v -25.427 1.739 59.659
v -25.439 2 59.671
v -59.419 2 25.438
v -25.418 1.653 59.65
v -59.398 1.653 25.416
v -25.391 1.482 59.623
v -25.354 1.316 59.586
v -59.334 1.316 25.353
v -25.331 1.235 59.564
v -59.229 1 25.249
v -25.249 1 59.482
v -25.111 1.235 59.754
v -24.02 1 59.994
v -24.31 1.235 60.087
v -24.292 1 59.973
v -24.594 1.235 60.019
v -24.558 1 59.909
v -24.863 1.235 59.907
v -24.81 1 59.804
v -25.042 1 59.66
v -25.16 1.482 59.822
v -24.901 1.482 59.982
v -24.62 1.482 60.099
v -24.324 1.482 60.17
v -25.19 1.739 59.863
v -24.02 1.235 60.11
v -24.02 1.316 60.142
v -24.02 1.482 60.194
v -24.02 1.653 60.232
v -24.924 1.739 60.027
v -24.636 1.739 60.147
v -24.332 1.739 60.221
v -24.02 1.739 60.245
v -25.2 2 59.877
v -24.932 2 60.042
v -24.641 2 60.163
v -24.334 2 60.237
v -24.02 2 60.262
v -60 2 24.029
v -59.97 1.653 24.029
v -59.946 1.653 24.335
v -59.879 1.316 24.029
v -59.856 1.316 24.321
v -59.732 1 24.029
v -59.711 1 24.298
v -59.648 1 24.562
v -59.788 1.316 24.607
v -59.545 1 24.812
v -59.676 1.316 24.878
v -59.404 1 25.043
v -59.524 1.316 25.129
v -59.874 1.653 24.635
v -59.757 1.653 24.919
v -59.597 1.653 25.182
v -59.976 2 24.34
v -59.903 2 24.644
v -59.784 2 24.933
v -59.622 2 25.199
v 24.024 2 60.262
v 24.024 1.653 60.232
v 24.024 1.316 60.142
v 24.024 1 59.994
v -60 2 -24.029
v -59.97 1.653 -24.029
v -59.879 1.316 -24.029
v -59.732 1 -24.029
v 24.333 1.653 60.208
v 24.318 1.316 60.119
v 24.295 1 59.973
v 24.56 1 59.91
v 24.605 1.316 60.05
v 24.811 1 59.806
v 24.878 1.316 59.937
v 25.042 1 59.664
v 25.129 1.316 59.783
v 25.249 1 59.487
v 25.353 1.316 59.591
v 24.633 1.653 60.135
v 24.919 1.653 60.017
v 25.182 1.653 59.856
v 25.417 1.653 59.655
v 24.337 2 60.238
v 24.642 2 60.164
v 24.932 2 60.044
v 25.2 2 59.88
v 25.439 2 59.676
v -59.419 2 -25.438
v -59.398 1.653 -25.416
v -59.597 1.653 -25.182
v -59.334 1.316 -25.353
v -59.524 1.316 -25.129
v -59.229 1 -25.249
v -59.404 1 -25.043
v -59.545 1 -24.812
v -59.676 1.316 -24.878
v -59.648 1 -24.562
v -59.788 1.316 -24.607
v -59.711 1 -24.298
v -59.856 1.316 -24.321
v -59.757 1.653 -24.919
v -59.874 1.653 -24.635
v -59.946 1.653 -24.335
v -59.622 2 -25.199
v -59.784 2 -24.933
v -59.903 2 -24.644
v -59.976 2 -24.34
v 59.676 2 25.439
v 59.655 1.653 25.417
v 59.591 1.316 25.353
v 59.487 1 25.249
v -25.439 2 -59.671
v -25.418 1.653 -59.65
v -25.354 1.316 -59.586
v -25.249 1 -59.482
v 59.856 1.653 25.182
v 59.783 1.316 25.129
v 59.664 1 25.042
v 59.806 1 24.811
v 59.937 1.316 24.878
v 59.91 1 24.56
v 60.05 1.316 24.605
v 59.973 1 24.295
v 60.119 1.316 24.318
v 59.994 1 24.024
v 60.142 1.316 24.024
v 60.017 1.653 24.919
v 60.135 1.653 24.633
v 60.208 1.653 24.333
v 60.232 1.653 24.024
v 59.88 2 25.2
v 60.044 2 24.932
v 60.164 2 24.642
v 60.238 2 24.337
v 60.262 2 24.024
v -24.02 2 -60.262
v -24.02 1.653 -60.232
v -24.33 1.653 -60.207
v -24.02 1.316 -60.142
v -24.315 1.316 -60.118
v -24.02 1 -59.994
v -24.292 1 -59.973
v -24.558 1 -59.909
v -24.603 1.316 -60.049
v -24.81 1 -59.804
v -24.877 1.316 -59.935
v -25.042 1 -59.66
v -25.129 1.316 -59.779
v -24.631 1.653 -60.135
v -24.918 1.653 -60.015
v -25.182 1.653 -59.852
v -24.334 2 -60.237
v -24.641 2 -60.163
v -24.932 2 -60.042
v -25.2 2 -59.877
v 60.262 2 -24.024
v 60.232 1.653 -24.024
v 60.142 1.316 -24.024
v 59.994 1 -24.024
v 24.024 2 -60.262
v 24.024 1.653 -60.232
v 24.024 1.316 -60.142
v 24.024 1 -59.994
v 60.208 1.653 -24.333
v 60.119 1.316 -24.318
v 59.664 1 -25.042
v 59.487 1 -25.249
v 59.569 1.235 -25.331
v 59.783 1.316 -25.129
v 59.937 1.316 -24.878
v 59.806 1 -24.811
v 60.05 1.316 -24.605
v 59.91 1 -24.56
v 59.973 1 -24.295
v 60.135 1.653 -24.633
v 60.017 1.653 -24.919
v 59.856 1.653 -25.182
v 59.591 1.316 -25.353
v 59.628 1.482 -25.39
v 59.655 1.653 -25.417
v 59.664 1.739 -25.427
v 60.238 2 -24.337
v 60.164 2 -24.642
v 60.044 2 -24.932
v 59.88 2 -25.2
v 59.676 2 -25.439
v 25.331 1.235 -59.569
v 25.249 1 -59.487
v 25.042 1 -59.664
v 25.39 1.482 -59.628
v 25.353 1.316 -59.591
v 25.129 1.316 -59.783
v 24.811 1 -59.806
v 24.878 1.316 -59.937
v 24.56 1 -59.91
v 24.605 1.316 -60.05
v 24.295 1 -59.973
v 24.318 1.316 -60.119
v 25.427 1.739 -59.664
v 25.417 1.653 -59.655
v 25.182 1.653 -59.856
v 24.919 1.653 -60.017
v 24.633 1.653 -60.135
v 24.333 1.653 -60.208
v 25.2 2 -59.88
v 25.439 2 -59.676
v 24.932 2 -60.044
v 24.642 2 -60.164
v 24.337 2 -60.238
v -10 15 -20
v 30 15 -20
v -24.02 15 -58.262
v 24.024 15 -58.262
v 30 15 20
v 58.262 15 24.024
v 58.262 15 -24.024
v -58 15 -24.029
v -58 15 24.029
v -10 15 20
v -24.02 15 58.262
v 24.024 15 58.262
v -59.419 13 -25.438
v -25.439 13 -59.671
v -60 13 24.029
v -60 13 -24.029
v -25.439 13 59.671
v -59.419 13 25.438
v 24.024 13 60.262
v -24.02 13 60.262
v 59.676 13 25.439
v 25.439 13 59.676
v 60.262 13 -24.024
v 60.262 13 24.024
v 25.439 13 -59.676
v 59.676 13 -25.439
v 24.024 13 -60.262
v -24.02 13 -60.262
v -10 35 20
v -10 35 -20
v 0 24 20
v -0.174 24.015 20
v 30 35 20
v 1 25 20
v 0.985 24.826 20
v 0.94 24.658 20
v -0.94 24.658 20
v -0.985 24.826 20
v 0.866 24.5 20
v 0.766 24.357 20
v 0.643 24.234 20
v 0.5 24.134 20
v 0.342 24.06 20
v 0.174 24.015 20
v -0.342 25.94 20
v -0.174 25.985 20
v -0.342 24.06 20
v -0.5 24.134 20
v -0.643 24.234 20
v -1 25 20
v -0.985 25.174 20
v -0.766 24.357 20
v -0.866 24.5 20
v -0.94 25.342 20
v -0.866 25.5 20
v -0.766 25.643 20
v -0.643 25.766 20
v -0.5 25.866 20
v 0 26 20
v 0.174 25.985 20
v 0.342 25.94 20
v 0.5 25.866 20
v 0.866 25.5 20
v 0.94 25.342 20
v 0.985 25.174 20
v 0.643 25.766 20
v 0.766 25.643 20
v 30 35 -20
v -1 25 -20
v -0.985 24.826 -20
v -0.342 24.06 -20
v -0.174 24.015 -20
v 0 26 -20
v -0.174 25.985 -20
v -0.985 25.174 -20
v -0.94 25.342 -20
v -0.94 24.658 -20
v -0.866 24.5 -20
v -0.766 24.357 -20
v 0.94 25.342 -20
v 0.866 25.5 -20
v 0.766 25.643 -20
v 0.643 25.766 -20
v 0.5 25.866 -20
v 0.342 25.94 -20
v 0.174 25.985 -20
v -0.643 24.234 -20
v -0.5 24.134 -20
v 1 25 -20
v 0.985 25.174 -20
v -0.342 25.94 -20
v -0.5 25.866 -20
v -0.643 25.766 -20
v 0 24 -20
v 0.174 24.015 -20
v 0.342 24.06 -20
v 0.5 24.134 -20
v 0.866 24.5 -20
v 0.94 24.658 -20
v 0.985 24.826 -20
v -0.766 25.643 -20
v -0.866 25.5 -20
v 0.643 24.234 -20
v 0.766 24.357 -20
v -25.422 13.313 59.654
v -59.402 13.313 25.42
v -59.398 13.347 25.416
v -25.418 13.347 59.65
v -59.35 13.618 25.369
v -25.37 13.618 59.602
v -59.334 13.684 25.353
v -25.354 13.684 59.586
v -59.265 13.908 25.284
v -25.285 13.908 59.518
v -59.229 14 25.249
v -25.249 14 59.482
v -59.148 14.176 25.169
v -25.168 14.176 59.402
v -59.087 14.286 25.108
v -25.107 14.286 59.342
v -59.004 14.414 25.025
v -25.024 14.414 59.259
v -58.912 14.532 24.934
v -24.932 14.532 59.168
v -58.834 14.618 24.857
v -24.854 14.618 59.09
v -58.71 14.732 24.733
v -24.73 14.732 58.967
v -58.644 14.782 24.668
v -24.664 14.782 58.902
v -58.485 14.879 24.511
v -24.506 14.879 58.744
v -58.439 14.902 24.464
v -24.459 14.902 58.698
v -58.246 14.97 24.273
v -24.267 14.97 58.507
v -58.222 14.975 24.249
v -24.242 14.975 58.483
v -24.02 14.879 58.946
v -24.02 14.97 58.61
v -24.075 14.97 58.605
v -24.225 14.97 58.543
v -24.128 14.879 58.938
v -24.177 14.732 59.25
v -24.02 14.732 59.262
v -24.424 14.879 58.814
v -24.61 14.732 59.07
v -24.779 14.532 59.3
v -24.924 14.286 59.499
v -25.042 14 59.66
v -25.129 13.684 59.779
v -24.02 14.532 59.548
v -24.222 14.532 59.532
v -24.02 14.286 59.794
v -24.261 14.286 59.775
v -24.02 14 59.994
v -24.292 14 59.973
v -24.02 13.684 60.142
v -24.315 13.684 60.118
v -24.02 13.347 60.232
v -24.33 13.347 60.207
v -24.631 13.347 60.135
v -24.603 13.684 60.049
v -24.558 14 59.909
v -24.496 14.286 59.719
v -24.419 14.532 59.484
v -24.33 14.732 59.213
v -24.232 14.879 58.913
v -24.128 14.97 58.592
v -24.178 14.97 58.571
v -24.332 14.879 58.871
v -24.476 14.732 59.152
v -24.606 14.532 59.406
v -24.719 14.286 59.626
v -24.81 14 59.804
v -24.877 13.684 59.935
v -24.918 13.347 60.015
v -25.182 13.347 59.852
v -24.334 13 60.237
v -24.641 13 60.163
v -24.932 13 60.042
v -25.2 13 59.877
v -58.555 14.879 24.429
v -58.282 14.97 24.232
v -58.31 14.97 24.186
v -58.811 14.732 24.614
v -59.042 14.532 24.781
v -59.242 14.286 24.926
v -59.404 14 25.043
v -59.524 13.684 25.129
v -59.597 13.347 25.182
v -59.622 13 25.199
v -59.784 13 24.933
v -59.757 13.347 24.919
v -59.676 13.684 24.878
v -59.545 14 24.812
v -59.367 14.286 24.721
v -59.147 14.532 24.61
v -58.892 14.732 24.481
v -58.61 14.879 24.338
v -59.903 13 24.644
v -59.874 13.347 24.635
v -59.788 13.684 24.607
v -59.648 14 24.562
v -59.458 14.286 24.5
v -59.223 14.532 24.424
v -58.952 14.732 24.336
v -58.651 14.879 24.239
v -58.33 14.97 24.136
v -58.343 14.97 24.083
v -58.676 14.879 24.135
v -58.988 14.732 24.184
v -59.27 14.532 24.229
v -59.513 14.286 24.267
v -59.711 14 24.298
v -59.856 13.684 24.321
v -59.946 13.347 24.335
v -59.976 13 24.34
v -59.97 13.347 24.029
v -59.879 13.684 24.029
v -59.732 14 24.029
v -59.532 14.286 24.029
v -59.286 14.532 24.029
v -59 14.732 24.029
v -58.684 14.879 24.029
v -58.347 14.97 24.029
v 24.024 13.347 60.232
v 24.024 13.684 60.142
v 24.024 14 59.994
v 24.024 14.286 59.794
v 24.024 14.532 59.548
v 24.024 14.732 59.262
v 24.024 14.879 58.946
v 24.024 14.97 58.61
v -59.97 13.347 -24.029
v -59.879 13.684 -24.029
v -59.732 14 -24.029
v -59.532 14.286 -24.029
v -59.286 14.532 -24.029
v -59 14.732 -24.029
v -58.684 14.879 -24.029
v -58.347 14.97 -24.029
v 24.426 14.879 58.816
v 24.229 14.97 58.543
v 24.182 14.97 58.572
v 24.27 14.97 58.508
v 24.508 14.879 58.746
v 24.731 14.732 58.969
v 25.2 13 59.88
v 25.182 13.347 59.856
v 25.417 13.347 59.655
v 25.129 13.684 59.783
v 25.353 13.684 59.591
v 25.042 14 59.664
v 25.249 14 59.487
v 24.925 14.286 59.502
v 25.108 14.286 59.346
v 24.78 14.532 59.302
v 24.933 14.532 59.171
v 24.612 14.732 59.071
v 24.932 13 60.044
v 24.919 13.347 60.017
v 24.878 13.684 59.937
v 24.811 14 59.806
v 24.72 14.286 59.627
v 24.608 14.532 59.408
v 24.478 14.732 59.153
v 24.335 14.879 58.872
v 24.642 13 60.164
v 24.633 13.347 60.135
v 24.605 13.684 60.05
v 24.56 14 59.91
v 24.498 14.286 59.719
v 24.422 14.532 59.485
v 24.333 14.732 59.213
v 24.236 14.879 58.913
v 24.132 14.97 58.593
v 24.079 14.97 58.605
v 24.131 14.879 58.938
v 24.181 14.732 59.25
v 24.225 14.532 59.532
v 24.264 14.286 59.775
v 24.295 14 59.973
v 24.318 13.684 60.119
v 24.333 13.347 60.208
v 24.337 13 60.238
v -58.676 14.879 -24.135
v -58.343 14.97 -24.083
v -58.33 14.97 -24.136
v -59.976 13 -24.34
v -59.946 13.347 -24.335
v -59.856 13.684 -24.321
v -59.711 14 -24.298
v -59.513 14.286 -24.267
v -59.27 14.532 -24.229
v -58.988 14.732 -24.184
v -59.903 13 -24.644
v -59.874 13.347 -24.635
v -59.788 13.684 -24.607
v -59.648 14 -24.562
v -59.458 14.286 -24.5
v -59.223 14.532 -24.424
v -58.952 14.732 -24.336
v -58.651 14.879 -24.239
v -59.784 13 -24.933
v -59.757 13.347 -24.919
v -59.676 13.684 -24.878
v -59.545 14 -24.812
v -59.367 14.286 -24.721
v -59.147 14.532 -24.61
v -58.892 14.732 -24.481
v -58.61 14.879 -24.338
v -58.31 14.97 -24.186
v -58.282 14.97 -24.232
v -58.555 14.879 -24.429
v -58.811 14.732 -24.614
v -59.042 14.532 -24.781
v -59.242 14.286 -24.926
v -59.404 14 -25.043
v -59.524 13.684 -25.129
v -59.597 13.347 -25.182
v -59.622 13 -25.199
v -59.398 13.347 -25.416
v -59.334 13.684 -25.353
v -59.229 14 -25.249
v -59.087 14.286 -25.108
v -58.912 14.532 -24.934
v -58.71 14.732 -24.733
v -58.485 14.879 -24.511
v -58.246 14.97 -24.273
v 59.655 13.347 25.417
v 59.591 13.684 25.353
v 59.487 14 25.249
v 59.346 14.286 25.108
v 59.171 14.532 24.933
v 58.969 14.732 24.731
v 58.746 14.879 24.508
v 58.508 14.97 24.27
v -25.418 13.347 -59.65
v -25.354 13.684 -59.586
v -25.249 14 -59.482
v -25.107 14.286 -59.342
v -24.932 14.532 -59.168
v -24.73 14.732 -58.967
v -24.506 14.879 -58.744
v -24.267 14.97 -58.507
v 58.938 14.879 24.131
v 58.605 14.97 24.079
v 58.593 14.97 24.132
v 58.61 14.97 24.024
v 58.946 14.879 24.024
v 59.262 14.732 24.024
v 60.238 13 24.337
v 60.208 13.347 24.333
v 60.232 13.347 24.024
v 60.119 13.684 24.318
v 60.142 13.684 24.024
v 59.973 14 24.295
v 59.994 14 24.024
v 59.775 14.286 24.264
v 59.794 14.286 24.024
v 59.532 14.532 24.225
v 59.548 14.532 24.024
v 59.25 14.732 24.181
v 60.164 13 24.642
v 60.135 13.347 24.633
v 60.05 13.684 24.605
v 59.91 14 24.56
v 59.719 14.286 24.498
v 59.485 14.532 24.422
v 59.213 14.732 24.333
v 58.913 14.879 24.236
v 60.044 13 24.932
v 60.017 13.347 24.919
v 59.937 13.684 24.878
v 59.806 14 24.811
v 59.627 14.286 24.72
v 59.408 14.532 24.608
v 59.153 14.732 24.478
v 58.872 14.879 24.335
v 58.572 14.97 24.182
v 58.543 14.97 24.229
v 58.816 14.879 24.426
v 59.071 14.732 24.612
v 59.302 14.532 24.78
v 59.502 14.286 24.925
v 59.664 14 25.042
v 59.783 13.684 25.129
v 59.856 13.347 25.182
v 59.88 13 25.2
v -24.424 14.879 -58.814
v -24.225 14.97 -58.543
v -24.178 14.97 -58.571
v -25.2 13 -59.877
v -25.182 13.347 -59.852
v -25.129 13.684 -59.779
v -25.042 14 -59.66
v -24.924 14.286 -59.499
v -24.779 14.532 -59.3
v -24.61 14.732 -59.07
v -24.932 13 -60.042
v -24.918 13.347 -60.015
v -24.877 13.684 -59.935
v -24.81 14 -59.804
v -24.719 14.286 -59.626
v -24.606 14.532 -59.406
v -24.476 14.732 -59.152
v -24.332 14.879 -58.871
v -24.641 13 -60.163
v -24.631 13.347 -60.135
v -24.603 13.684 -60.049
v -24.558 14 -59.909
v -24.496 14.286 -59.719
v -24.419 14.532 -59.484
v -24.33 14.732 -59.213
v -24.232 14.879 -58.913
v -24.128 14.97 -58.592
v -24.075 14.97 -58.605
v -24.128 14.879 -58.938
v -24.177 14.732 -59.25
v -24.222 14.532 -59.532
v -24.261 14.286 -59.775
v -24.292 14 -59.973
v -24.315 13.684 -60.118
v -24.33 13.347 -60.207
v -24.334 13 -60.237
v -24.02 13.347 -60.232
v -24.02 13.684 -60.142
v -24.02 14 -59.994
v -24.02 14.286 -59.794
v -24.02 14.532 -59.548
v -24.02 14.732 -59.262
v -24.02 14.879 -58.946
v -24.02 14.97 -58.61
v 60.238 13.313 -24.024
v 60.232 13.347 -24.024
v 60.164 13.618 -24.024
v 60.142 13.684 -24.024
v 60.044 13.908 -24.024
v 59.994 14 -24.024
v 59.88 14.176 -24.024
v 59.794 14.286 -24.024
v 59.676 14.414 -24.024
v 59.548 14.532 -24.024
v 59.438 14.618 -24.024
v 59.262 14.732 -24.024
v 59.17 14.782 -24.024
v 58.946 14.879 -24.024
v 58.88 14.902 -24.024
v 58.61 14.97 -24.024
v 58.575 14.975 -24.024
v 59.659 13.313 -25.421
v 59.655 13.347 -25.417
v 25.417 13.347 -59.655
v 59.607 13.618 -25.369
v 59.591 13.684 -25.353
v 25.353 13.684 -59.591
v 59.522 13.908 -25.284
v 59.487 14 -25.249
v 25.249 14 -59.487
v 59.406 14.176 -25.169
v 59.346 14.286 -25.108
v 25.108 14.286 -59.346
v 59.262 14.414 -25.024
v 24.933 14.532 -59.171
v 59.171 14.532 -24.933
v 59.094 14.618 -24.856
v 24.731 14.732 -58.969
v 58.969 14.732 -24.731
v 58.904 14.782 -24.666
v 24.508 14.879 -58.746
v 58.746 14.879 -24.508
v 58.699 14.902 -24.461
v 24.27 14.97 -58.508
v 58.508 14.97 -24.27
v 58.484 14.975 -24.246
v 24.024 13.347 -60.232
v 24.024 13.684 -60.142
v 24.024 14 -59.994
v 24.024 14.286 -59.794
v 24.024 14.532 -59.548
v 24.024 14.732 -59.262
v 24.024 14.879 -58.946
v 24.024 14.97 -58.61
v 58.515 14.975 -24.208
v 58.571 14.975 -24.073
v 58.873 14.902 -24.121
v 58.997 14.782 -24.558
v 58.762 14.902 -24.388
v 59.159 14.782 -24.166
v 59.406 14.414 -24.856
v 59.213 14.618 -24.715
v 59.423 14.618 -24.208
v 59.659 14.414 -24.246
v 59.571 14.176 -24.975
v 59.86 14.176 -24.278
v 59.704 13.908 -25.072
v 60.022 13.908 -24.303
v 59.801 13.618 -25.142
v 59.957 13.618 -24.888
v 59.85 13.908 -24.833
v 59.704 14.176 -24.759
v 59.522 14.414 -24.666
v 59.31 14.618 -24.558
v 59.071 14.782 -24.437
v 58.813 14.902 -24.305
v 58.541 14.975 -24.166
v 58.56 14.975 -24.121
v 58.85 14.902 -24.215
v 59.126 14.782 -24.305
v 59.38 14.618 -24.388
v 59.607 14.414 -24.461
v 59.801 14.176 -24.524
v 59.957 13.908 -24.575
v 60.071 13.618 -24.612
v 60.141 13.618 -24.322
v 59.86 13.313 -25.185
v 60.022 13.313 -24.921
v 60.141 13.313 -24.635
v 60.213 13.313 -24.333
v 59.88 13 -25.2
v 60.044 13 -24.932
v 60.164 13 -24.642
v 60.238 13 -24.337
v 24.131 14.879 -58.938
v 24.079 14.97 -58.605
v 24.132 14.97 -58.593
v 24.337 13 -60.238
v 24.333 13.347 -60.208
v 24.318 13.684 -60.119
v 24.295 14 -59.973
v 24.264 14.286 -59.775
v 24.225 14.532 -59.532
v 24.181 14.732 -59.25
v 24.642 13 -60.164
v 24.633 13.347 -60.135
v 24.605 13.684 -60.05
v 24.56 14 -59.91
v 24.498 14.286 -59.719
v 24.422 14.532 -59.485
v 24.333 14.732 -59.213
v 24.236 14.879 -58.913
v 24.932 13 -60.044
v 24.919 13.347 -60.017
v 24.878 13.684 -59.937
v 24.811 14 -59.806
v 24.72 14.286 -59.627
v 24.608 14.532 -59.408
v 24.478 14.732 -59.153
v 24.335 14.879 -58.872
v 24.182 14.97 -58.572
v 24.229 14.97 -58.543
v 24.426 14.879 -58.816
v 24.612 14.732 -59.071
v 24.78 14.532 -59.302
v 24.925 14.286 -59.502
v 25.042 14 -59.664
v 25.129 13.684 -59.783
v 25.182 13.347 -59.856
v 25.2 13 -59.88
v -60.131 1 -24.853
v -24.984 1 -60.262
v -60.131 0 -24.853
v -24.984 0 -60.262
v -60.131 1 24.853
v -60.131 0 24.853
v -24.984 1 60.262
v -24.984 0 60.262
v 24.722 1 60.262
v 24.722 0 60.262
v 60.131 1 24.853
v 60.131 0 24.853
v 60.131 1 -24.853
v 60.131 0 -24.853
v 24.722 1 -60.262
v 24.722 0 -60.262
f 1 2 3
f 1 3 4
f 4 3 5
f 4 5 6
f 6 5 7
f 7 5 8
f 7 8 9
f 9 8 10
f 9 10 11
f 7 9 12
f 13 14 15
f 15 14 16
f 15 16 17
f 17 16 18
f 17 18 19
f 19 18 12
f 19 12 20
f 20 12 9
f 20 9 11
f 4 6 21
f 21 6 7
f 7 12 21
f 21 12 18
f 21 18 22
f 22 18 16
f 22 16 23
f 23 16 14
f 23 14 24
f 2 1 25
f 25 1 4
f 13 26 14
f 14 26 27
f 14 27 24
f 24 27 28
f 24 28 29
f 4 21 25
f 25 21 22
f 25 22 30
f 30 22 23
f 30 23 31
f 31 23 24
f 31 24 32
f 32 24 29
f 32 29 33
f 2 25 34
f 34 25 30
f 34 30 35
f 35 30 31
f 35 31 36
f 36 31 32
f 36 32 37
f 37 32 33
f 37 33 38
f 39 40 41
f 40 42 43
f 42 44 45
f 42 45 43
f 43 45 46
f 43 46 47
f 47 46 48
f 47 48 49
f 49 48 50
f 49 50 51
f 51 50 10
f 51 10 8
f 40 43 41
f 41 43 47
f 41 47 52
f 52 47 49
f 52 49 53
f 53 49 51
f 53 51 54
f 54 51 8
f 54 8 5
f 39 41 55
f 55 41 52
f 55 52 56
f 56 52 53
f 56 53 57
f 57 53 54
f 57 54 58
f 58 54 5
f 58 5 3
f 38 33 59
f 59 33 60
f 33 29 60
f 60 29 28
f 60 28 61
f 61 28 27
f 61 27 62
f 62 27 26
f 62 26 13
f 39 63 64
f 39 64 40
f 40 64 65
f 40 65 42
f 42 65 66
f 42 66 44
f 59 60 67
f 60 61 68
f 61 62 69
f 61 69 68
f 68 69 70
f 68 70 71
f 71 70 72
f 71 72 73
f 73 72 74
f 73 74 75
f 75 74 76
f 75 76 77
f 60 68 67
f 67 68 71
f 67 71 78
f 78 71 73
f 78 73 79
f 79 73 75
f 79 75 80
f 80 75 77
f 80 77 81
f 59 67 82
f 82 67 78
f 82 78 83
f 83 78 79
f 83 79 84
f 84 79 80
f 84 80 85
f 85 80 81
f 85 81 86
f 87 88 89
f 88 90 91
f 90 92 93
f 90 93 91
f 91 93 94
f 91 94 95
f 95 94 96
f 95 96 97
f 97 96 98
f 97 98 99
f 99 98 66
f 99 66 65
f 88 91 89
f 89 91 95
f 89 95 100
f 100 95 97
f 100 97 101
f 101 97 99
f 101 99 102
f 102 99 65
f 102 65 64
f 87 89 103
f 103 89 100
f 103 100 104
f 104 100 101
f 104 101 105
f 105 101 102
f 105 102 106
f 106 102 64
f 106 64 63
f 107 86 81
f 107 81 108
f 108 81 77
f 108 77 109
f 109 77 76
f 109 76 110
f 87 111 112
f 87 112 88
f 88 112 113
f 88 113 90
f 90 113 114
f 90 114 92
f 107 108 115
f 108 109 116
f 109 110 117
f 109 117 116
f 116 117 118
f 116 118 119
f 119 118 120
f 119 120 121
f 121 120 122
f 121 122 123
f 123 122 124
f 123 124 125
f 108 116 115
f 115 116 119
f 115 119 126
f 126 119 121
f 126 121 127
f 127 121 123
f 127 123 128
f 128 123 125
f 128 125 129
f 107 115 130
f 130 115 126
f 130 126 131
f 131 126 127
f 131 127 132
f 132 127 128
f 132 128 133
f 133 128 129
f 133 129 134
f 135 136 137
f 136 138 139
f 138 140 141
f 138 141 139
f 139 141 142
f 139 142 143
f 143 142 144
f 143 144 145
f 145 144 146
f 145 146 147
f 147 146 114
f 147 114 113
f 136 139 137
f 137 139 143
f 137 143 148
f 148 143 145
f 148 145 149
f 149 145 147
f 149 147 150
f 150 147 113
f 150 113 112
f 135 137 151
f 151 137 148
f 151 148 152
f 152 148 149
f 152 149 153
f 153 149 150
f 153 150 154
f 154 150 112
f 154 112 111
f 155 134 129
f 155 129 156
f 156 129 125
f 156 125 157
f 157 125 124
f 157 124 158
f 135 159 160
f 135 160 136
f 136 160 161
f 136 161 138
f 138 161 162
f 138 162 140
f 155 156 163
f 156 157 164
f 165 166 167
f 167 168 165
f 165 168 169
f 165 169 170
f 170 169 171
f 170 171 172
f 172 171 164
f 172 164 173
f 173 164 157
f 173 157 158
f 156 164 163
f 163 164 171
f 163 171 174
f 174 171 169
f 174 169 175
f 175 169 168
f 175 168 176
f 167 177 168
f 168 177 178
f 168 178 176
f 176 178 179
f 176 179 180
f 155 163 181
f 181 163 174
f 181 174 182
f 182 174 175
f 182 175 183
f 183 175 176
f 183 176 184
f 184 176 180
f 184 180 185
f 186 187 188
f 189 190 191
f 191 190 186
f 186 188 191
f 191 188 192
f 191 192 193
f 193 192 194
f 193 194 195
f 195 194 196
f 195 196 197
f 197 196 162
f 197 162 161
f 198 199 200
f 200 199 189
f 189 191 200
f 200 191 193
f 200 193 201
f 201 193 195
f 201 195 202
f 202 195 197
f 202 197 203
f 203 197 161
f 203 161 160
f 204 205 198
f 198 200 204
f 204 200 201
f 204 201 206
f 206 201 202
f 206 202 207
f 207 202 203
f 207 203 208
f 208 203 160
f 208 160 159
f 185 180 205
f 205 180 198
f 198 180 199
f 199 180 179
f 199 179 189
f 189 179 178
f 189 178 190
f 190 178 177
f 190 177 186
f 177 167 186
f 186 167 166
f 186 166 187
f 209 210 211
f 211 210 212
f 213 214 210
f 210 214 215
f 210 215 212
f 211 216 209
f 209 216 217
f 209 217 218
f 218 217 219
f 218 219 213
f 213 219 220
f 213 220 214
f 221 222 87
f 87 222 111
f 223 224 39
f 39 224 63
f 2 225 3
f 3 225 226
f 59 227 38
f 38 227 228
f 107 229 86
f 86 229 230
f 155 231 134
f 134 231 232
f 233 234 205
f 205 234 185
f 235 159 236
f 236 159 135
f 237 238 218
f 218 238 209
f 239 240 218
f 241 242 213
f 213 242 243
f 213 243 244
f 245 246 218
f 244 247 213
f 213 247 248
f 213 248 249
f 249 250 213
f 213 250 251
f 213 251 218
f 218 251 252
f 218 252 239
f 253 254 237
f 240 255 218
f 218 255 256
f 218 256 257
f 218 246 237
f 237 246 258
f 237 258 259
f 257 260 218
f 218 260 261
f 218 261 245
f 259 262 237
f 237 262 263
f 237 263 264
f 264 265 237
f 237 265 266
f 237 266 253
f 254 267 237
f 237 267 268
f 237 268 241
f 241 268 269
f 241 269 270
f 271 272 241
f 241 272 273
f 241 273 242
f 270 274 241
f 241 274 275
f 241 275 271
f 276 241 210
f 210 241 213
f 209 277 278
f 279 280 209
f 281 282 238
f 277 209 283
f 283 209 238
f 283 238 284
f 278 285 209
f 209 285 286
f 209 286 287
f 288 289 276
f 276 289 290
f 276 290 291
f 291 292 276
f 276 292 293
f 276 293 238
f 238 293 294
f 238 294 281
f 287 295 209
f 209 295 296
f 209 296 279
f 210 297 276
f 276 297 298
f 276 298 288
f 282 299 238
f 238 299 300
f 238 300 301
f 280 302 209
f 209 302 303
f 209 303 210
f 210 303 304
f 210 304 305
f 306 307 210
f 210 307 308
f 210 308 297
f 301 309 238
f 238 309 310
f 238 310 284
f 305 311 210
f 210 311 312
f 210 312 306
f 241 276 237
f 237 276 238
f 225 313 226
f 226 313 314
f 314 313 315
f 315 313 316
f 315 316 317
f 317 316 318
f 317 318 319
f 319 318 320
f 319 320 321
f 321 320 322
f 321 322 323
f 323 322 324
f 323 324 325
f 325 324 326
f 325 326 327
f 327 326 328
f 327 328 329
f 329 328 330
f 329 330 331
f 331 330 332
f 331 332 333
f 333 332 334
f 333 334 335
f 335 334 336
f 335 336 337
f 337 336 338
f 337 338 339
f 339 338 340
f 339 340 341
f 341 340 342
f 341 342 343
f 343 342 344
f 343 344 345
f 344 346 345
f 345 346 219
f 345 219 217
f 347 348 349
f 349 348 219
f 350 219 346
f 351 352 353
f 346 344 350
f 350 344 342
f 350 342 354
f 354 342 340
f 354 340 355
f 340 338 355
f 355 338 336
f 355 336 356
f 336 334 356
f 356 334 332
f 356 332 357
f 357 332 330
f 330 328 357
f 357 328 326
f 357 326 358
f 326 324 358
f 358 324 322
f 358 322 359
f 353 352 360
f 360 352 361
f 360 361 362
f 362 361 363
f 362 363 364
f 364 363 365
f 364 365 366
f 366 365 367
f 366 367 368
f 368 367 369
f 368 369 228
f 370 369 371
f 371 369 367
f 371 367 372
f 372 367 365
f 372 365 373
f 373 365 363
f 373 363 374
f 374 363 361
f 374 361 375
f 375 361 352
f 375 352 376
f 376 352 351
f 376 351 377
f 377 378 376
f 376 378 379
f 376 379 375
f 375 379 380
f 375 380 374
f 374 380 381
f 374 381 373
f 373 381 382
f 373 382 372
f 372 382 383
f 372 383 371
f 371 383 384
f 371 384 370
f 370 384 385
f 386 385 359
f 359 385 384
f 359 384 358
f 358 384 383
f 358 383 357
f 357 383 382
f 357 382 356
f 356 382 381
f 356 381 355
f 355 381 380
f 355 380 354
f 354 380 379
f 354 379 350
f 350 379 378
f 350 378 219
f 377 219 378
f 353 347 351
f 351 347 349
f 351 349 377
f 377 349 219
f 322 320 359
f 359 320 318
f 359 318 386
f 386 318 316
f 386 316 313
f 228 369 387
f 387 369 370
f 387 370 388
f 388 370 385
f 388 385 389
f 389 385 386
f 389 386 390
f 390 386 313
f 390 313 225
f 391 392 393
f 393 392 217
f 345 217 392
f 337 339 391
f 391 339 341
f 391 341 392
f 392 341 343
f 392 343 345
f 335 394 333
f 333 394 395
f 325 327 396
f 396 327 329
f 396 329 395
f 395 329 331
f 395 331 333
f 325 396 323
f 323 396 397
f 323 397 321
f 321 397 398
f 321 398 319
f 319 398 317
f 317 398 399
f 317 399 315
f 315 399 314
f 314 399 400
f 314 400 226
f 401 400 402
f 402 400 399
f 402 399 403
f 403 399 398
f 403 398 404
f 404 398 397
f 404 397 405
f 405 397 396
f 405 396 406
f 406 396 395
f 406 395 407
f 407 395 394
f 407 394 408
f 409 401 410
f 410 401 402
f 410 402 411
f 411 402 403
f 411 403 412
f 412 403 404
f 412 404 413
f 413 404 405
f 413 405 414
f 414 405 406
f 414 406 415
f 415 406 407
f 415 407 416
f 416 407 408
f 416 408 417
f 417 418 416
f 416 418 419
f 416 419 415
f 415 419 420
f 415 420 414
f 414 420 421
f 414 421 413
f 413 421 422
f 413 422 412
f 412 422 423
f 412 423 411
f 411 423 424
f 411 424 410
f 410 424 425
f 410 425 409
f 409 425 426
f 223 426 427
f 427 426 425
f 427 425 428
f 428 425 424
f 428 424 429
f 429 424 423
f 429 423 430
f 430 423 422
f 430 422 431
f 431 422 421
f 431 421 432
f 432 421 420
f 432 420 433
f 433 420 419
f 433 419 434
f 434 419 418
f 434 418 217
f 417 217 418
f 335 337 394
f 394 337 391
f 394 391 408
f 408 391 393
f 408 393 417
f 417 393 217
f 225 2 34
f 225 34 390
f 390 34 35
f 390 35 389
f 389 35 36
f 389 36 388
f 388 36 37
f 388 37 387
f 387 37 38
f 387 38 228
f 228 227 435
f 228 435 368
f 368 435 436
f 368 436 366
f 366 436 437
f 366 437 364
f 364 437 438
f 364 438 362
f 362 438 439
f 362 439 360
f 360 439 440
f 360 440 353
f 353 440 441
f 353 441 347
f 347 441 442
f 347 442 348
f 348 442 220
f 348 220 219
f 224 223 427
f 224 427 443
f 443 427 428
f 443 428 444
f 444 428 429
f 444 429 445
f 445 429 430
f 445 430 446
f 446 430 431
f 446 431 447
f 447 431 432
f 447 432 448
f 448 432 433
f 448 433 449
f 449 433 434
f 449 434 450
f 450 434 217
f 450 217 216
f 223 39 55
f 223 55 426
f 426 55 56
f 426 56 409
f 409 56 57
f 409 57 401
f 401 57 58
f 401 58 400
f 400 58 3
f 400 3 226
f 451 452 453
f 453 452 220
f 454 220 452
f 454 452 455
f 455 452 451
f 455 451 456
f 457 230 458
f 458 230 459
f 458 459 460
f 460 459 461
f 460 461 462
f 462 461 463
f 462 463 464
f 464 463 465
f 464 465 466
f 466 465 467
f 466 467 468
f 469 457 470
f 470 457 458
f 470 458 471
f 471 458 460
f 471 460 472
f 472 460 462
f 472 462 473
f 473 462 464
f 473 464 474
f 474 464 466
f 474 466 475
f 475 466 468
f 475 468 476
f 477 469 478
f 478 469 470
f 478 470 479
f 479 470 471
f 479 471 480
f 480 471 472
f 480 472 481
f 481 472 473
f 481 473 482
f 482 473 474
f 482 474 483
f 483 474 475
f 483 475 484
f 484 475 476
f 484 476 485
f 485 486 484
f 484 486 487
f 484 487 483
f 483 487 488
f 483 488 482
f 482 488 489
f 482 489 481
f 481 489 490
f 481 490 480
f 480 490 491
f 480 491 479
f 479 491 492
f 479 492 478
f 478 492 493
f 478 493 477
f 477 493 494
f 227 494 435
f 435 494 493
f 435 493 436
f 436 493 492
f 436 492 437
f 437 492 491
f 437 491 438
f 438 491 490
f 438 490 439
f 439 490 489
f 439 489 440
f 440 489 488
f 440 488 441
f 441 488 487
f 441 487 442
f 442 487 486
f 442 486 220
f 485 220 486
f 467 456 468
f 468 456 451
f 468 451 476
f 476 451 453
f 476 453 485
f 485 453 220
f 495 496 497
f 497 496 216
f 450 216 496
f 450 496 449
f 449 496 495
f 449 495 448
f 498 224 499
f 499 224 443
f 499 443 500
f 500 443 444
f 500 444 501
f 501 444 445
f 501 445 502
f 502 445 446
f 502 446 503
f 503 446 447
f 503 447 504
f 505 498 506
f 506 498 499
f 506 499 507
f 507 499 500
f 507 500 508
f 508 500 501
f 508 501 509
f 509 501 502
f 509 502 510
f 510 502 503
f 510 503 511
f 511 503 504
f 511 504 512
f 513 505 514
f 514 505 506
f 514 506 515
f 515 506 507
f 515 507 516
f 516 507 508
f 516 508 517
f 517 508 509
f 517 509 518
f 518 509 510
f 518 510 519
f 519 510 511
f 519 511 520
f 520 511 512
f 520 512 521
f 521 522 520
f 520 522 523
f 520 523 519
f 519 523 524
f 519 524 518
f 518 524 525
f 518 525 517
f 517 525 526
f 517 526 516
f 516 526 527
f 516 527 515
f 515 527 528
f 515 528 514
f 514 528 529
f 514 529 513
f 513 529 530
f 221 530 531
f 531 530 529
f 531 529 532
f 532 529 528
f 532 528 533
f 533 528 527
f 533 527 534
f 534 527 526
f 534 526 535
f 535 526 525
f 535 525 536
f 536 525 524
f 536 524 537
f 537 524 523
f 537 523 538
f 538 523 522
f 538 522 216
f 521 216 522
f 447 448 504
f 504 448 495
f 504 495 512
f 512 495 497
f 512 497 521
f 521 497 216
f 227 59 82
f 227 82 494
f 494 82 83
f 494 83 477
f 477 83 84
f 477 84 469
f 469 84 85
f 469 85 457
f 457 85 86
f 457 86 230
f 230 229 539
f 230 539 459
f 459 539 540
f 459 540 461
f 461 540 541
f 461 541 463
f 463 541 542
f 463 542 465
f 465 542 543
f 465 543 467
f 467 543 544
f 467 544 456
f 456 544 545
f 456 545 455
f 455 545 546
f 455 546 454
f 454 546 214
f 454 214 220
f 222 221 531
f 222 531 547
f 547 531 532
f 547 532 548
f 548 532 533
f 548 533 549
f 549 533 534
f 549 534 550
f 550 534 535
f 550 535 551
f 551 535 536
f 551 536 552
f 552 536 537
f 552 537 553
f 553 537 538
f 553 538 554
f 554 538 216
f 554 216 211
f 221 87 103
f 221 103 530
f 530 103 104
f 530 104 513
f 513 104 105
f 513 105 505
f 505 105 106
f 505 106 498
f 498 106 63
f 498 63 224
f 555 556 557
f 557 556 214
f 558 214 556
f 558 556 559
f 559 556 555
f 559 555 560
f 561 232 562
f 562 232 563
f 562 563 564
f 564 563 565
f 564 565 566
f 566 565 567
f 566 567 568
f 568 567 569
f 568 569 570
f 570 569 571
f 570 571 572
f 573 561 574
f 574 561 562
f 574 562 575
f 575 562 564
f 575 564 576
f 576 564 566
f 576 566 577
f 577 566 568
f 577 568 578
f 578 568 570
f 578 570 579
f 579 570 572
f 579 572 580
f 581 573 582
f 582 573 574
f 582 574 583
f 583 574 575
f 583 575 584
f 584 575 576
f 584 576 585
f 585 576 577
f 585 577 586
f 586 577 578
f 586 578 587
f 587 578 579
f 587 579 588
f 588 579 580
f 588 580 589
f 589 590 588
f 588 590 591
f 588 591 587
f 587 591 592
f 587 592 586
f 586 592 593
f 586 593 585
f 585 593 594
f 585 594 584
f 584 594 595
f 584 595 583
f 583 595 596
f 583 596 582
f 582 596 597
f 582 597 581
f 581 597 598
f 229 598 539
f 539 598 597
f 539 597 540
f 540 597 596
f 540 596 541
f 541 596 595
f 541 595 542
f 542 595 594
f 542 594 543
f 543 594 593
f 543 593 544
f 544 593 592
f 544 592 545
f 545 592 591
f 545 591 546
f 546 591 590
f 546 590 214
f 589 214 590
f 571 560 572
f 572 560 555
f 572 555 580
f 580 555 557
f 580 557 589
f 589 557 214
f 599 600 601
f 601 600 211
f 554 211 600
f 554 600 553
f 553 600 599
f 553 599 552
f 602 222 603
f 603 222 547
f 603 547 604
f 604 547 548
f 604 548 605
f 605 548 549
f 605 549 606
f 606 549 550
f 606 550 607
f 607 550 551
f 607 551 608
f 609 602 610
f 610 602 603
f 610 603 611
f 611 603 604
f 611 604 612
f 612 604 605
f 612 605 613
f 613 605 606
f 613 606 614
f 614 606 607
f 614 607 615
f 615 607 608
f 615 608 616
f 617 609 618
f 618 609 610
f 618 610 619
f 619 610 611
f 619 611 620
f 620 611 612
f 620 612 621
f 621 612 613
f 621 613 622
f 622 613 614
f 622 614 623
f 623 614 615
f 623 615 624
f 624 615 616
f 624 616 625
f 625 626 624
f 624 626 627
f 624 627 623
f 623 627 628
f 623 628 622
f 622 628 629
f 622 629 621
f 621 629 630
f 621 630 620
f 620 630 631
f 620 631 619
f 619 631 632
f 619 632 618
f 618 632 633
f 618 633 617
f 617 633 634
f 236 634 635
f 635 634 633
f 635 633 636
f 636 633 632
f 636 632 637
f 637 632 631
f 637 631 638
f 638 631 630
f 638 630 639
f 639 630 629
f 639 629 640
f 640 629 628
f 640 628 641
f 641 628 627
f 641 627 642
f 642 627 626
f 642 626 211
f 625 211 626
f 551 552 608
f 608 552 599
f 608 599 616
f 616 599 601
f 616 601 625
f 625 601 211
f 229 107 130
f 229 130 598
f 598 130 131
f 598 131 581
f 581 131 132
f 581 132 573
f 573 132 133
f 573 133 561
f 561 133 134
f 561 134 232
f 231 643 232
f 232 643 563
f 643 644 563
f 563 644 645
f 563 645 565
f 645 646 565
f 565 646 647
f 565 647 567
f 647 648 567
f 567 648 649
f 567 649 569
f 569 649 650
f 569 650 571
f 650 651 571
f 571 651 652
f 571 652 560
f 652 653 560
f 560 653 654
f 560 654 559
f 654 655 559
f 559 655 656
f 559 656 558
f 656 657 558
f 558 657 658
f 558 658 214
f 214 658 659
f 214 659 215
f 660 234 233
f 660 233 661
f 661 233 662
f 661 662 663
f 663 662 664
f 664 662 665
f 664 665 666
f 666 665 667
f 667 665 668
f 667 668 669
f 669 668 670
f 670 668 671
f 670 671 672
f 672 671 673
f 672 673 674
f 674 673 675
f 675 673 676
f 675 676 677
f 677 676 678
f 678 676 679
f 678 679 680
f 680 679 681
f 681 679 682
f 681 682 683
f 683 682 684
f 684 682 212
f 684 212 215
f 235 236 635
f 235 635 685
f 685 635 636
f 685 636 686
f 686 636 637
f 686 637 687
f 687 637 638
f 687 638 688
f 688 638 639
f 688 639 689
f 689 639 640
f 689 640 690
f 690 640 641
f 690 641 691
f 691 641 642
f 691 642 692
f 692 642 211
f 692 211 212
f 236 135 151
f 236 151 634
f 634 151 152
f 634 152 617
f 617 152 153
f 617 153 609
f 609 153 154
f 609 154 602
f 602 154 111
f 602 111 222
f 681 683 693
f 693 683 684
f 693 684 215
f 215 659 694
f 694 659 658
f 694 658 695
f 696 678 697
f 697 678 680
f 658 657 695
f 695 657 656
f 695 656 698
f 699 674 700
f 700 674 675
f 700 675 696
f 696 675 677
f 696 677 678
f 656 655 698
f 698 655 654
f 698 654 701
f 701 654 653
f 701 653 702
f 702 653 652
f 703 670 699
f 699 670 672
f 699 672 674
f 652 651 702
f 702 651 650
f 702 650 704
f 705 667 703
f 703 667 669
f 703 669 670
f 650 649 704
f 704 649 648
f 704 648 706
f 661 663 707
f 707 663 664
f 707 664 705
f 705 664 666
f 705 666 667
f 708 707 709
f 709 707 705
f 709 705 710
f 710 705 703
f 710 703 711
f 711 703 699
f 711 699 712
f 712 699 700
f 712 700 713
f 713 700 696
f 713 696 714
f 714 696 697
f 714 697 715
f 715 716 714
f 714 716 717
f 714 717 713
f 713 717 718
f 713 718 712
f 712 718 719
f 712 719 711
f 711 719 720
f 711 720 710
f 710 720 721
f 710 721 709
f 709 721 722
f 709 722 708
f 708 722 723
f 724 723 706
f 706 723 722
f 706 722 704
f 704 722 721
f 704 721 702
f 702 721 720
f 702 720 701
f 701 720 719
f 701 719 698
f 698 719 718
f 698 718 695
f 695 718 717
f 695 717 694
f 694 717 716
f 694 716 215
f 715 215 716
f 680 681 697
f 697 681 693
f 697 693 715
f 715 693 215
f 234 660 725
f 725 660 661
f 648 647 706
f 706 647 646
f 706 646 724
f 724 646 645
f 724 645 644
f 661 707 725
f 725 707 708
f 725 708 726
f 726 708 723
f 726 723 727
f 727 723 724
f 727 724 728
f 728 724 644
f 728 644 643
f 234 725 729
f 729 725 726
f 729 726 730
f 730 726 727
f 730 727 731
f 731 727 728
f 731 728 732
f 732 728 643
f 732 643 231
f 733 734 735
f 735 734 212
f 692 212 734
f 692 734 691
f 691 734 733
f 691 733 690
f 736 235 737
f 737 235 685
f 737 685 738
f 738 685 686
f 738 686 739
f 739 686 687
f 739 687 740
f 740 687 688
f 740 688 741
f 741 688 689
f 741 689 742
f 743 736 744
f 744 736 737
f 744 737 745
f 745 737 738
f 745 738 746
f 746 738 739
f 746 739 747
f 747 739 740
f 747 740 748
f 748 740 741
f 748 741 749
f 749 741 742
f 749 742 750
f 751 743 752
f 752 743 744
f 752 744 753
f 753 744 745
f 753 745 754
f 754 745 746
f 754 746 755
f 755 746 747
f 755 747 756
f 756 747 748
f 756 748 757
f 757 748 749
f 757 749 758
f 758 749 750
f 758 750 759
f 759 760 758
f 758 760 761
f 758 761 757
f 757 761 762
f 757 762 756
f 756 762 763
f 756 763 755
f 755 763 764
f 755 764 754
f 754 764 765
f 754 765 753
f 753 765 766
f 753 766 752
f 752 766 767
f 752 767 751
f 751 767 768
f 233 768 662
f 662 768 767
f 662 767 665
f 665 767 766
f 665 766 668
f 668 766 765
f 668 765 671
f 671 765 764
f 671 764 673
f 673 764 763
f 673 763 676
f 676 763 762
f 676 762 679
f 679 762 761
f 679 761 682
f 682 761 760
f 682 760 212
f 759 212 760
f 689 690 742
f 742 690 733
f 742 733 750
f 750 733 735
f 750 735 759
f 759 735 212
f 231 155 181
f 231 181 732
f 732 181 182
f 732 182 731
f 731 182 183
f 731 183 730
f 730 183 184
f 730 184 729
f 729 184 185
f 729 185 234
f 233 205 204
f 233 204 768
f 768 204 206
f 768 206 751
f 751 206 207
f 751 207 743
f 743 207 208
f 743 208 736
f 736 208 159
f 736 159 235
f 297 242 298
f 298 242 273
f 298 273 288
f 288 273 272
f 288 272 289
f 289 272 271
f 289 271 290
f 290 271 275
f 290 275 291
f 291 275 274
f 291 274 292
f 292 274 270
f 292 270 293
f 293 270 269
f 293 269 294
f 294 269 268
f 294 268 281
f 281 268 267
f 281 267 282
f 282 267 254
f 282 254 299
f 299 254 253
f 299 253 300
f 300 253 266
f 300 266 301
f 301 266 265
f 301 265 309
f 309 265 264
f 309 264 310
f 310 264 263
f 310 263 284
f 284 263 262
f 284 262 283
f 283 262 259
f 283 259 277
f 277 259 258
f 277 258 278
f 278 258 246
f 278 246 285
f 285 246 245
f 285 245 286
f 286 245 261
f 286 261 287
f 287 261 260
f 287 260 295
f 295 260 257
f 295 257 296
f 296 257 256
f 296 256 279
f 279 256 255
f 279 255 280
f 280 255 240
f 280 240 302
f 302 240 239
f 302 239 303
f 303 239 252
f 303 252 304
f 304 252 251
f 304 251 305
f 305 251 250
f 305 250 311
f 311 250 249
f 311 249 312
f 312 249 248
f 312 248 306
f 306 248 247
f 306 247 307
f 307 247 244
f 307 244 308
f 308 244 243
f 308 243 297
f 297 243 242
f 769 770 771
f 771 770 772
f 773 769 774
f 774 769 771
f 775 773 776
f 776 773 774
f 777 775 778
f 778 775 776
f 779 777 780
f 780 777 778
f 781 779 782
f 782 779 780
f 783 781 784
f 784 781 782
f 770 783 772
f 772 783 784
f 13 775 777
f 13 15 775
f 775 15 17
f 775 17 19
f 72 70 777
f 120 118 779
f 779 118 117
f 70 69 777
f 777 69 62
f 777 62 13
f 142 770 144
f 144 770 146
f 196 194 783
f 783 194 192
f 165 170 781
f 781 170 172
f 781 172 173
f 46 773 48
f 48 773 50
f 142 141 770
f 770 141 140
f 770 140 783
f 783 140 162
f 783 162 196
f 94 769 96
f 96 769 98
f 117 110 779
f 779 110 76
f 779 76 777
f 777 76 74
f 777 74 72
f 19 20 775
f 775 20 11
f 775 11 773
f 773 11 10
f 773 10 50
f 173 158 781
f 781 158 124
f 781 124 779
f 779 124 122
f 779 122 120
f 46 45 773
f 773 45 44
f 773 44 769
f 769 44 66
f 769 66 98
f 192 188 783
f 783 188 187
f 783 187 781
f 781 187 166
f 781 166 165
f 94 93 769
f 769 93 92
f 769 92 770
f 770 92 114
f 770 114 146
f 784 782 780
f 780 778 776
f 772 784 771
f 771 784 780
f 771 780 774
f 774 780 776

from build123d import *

# Parameters (mm, degrees)
BOSS_EXTRUDE2_DEPTH = 15
SKETCH3_W           = 40
SKETCH3_H           = 40
BOSS_EXTRUDE3_DEPTH = 20
FILLET2_R           = 2
SKETCH4_R           = 1
CUT_EXTRUDE1_DEPTH  = 40
BOSS_EXTRUDE4_DEPTH = 1


with BuildPart() as part:
    # Sketch2 → Boss-Extrude2 (new body)
    with BuildSketch(Plane(origin=(0, 0, 0), x_dir=(1, 0, 0), z_dir=(0, 1, 0))):
        Polygon((-60, -24.852813742), (-24.852813742, -60.262270904), (24.852813742, -60.262270904), (60.262270904, -24.852813742), (60.262270904, 24.852813742), (24.852813742, 60.262270904), (-24.852813742, 60.262270904), (-60, 24.852813742), align=None)
    extrude(amount=BOSS_EXTRUDE2_DEPTH)

    # Sketch3 → Boss-Extrude3 (add)
    with BuildSketch(Plane(origin=(0, 15, 0), x_dir=(1, 0, 0), z_dir=(0, 1, 0))):
        with Locations((10, 0)):
            Rectangle(SKETCH3_W, SKETCH3_H)
    extrude(amount=BOSS_EXTRUDE3_DEPTH)

    # Fillet2
    fillet2_edges = [part.edges().sort_by_distance(p)[0] for p in [
        (0, 0, 60.262270904),
        (-42.426406871, 0, 42.557542323),
        (-60, 0, 0),
        (-42.426406871, 0, -42.557542323),
        (-42.426406871, 15, 42.557542323),
        (-24.852813742, 7.5, -60.262270904),
        (24.852813742, 7.5, -60.262270904),
        (60.262270904, 7.5, -24.852813742),
        (60.262270904, 7.5, 24.852813742),
        (24.852813742, 7.5, 60.262270904),
        (-24.852813742, 7.5, 60.262270904),
        (-60, 7.5, 24.852813742),
        (-60, 7.5, -24.852813742),
        (0, 15, 60.262270904),
        (42.557542323, 15, 42.557542323),
        (60.262270904, 15, 0),
        (42.557542323, 15, -42.557542323),
        (0, 15, -60.262270904),
        (-42.426406871, 15, -42.557542323),
        (0, 0, -60.262270904),
        (-60, 15, 0),
        (42.557542323, 0, -42.557542323),
        (60.262270904, 0, 0),
        (42.557542323, 0, 42.557542323),
    ]]
    fillet(fillet2_edges, radius=FILLET2_R)

    # Sketch4 → Cut-Extrude1 (cut)
    with BuildSketch(Plane.XY.offset(20)):
        with Locations((0, 25)):
            Circle(SKETCH4_R)
    extrude(amount=-CUT_EXTRUDE1_DEPTH, mode=Mode.SUBTRACT)

    # Sketch1 → Boss-Extrude4 (add)
    with BuildSketch(Plane(origin=(0, 0, 0), x_dir=(1, 0, 0), z_dir=(0, 1, 0))):
        Polygon((-60.131135452, -24.852813742), (-24.983949194, -60.262270904), (24.72167829, -60.262270904), (60.131135452, -24.852813742), (60.131135452, 24.852813742), (24.72167829, 60.262270904), (-24.983949194, 60.262270904), (-60.131135452, 24.852813742), align=None)
    extrude(amount=BOSS_EXTRUDE4_DEPTH)


solid = part.part
